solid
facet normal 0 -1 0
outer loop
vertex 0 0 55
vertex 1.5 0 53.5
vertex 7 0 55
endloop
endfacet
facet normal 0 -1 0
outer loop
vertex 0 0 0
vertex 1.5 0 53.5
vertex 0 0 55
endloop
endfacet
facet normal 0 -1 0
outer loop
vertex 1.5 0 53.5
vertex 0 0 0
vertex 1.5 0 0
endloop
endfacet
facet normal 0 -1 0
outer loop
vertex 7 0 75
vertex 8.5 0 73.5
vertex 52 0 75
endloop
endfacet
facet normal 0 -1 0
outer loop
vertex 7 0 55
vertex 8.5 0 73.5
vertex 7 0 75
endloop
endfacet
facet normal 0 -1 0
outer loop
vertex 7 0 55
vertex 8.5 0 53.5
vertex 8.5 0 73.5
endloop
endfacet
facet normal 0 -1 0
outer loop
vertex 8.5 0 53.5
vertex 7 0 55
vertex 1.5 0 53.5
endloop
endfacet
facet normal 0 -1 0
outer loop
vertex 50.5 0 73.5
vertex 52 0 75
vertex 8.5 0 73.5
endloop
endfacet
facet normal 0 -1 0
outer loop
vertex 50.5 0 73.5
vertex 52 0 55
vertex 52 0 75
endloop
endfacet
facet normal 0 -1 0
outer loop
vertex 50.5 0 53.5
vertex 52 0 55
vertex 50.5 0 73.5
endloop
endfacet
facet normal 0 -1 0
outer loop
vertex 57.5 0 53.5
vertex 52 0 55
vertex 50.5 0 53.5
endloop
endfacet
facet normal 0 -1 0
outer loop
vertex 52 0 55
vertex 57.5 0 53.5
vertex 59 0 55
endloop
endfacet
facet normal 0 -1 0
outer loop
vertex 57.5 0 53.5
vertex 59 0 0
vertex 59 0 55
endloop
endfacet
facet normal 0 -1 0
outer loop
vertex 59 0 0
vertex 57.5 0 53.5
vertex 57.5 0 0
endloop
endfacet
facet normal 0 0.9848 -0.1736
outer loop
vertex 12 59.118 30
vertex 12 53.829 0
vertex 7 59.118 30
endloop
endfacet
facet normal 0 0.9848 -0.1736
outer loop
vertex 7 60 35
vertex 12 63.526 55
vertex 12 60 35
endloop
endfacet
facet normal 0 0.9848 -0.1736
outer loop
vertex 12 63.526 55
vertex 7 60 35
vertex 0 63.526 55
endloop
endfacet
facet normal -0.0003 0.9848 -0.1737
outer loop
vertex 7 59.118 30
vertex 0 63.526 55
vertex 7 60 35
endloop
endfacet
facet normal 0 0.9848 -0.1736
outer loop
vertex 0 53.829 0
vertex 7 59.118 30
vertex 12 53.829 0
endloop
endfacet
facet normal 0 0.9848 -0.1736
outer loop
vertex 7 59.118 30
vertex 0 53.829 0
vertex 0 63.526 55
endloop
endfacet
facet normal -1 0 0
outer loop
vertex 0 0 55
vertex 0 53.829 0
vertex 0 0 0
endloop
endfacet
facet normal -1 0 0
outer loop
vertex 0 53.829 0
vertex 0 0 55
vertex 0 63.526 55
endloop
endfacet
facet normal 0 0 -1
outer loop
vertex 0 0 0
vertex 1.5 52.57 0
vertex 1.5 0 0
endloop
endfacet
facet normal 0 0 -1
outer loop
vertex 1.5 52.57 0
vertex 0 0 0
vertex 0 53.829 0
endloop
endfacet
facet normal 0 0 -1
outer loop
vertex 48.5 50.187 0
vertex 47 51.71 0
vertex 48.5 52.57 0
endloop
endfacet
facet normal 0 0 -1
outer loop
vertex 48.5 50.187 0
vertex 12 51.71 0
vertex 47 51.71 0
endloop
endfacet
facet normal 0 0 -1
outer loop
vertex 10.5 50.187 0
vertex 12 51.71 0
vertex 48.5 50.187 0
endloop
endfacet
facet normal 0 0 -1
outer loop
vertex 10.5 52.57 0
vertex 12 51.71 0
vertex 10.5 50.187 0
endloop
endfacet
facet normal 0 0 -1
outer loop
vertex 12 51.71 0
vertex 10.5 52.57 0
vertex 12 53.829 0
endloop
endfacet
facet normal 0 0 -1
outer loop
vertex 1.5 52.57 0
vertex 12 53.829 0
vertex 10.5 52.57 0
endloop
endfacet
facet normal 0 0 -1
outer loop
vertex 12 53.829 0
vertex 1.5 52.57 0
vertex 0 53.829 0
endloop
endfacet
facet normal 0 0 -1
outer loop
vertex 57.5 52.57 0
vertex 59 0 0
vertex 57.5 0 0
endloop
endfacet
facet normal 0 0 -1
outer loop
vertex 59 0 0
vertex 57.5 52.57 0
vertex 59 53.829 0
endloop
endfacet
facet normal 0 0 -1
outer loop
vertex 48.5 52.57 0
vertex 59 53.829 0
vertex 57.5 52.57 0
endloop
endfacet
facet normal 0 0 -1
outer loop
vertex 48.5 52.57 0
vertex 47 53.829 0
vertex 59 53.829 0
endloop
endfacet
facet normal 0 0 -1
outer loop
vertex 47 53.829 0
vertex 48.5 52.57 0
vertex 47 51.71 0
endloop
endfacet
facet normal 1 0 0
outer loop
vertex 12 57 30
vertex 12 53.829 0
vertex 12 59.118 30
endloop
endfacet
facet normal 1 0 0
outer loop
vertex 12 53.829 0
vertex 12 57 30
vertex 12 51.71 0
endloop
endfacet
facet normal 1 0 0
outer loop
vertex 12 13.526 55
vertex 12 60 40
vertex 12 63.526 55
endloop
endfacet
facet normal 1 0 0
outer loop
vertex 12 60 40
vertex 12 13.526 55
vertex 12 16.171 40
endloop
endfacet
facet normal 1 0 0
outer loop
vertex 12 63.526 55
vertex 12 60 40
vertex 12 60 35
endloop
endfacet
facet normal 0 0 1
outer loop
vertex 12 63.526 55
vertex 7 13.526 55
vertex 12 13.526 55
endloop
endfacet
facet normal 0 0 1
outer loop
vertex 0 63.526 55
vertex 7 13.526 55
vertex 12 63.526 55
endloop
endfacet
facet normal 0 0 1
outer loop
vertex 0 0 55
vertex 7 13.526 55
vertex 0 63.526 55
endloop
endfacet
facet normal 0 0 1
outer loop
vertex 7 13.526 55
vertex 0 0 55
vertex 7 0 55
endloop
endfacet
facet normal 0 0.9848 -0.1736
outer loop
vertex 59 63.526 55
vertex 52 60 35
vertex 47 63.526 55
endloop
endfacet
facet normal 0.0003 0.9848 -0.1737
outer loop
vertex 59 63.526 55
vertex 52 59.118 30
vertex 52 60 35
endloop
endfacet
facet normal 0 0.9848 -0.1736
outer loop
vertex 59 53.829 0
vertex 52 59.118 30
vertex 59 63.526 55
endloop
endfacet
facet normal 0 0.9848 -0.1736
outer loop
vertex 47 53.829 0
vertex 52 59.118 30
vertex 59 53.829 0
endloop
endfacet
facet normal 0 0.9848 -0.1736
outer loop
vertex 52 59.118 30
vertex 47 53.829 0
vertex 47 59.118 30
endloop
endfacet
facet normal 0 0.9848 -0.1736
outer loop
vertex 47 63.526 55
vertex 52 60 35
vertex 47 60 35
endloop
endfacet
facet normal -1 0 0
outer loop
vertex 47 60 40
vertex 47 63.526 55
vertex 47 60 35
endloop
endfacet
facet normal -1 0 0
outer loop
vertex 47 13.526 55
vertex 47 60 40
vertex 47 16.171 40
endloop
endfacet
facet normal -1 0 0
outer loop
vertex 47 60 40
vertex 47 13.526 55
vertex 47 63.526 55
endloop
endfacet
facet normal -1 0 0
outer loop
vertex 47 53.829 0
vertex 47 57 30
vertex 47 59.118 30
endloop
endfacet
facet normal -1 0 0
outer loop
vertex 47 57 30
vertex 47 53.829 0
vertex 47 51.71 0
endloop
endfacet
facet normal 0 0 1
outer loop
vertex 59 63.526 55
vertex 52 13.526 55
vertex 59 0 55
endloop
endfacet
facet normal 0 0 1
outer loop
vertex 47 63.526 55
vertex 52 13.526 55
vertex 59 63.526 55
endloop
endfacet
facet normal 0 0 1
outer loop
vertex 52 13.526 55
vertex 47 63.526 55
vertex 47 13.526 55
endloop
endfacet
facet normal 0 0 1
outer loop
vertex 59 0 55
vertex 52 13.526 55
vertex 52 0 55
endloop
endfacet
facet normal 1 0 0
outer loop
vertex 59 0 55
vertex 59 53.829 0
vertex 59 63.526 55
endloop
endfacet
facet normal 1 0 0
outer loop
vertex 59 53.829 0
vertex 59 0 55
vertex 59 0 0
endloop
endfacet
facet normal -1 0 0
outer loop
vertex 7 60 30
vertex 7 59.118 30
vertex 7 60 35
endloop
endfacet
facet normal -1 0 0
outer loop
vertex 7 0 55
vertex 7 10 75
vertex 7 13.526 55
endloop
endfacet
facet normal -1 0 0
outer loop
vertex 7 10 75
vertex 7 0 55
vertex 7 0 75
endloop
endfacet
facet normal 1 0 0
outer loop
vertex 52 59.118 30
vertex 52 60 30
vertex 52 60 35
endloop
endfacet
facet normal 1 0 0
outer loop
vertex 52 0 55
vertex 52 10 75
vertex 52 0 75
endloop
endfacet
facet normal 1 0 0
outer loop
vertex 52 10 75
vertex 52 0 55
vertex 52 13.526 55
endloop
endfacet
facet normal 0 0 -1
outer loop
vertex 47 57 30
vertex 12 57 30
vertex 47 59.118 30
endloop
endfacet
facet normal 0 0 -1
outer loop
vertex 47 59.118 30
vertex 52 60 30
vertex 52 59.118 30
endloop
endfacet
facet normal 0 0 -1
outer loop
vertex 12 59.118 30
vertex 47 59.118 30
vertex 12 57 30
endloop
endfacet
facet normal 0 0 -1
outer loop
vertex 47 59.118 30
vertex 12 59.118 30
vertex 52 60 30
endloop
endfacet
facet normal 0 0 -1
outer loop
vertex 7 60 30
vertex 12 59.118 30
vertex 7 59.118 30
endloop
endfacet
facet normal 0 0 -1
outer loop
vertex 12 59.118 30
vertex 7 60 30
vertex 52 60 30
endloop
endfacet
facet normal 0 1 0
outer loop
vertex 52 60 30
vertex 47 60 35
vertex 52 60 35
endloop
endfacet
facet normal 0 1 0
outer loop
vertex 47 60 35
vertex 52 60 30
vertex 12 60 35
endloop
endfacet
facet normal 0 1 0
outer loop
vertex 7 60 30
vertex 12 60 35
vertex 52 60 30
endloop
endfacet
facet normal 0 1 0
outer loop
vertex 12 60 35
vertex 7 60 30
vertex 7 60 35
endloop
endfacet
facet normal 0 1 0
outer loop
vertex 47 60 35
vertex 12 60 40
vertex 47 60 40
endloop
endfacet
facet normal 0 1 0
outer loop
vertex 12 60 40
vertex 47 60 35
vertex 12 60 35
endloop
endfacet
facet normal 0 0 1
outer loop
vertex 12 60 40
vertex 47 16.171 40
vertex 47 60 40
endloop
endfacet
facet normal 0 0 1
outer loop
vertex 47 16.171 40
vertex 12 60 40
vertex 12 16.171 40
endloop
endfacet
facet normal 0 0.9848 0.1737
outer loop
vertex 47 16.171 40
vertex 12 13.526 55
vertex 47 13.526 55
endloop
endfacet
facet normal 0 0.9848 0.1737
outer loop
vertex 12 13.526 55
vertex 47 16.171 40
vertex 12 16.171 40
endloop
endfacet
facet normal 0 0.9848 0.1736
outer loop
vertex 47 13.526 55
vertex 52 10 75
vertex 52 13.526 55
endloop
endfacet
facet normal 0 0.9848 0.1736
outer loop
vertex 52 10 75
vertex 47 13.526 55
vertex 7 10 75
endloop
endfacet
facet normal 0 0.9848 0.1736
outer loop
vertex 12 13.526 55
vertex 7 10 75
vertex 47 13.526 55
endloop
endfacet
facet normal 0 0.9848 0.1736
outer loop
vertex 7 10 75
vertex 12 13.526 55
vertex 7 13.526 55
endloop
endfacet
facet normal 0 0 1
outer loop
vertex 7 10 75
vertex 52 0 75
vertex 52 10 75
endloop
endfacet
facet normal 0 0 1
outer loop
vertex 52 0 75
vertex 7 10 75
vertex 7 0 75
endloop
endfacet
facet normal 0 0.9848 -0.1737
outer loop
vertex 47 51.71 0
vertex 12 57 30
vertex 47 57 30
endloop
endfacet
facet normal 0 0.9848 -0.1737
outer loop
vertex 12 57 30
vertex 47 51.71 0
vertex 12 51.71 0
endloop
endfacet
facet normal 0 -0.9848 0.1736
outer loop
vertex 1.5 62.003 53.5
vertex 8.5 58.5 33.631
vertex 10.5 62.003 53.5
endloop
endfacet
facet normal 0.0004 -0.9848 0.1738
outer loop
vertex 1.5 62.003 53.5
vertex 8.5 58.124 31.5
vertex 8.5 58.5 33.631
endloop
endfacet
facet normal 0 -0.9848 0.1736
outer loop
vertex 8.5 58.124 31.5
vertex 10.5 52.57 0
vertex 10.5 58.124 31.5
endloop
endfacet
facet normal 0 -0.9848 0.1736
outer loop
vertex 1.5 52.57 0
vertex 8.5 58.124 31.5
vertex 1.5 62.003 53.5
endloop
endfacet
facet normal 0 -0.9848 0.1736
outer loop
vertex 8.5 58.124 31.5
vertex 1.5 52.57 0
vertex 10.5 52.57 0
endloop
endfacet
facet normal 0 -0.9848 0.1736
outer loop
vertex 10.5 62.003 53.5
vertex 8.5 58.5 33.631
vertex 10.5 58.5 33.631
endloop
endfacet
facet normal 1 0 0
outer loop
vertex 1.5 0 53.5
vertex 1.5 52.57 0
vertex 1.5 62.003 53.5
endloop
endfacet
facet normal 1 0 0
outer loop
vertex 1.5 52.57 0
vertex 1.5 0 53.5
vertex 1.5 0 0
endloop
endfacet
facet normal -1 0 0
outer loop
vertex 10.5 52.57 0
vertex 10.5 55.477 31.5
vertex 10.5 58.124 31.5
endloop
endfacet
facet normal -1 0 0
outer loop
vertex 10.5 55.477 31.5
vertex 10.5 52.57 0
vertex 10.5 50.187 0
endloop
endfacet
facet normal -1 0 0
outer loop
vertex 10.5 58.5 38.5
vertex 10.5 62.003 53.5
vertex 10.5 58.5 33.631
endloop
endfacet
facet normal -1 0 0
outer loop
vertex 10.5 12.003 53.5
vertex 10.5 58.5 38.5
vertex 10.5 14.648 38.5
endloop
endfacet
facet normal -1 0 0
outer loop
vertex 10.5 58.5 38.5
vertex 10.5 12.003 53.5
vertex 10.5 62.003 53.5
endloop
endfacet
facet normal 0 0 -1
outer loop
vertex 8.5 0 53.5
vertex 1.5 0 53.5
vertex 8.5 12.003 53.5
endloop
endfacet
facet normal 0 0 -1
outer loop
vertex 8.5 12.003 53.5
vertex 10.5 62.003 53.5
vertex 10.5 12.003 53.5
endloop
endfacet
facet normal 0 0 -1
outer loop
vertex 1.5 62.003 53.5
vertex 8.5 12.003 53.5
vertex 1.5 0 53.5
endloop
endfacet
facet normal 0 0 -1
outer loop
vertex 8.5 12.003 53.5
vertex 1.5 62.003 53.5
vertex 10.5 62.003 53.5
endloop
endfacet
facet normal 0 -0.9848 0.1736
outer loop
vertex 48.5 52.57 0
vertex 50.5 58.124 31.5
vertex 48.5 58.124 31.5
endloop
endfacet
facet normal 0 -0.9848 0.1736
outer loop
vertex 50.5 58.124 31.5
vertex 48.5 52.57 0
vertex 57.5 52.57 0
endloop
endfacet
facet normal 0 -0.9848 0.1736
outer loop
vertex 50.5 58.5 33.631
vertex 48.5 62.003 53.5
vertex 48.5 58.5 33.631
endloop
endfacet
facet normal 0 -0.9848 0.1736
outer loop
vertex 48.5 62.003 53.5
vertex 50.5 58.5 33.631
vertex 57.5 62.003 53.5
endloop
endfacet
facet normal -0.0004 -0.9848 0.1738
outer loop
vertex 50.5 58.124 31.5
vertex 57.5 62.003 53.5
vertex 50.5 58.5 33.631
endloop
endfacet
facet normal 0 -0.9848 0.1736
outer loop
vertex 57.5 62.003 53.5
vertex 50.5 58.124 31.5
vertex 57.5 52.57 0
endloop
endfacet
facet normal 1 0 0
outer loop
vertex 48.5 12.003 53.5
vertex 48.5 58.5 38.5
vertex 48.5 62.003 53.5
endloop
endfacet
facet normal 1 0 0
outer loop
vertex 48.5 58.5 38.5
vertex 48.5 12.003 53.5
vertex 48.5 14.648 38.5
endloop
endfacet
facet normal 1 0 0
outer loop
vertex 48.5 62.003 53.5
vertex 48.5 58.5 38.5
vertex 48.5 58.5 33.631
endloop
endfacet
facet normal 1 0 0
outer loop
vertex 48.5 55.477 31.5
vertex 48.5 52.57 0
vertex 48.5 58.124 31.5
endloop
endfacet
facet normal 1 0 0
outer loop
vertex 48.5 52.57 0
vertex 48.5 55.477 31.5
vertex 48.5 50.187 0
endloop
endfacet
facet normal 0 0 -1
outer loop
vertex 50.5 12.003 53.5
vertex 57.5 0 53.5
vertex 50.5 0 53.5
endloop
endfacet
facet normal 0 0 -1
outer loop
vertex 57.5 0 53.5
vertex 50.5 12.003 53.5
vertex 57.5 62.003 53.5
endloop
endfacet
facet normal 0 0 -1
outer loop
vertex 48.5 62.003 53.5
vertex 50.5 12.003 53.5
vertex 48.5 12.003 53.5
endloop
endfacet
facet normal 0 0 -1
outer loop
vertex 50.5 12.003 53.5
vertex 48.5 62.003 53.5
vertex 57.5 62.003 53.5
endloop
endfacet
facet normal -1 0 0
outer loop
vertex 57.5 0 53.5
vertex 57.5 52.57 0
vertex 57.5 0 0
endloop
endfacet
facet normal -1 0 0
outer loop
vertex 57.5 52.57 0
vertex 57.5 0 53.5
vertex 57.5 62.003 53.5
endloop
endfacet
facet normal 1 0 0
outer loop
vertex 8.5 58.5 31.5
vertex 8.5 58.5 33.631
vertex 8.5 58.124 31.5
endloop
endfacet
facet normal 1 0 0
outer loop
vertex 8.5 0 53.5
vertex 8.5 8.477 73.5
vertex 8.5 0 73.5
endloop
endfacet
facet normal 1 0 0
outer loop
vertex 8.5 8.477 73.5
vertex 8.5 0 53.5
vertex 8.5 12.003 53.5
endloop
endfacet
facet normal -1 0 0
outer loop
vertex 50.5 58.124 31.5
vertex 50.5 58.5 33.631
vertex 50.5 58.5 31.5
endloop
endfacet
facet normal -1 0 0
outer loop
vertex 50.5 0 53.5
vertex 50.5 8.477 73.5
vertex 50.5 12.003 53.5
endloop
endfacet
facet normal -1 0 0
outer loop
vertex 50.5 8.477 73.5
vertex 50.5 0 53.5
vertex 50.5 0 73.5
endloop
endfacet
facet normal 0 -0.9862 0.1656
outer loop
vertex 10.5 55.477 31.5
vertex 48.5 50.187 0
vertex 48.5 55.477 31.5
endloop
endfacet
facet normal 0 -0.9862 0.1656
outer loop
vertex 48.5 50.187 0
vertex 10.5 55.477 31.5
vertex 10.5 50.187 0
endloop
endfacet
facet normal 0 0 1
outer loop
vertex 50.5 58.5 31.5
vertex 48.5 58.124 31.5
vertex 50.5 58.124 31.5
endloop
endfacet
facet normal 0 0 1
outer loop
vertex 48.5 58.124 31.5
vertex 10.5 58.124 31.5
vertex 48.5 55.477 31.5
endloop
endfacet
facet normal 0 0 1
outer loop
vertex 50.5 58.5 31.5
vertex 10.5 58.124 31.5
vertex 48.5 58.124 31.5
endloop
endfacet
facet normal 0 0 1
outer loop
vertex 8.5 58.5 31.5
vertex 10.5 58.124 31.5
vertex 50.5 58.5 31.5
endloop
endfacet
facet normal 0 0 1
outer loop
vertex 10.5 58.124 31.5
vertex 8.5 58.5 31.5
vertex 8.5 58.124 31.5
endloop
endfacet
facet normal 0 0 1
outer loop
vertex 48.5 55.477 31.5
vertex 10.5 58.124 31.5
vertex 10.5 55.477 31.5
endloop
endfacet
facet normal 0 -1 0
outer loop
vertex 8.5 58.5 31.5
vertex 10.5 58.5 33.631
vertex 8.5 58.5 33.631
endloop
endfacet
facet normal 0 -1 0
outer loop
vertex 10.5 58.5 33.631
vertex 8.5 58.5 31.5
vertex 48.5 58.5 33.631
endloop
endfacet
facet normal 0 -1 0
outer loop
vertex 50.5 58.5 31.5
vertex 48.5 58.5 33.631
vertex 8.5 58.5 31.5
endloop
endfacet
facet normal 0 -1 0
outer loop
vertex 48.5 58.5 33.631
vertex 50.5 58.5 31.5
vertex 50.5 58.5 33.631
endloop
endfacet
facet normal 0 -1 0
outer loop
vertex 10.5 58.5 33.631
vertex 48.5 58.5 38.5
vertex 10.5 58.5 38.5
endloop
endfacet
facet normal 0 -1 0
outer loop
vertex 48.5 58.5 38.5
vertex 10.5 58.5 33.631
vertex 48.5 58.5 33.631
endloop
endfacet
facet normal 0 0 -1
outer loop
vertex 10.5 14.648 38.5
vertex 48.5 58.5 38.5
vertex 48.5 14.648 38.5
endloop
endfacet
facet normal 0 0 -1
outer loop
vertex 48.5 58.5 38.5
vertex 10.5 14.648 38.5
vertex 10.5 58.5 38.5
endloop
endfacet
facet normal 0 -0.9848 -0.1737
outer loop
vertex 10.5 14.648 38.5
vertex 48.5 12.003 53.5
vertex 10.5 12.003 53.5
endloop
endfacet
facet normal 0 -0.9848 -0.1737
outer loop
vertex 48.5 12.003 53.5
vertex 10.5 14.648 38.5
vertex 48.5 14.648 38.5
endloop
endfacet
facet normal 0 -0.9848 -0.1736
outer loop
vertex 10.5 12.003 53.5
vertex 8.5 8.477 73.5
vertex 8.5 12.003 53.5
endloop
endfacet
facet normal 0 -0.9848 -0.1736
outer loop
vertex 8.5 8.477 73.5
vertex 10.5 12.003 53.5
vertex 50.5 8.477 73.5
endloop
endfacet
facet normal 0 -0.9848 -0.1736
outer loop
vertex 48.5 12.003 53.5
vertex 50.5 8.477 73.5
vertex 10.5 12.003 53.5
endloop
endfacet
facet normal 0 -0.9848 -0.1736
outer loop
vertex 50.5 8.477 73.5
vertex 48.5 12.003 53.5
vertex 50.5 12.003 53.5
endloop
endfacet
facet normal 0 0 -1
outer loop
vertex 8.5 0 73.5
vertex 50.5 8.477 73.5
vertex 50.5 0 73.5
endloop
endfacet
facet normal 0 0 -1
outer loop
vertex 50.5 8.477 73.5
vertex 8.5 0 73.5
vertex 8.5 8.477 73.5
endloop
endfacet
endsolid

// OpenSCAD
// file: solid_chair.scad
width=45;
height=75;
depth=60;
back_top=10;
top_angle=80;
seat_elevation=40;
seat_height=10;
seat_overhang=3;
bottom_angle=80;
wall_thickness=1.5;
armrest_bool=true;
armrest_height=55;
armrest_width=12;
armrest_overlap=5;

module solid_chair(
    w=width,
    h=height,
    d=depth,
    bt=back_top,
    ta=top_angle,
    se=seat_elevation,
    sh=seat_height,
    so=seat_overhang,
    ba=bottom_angle,
    wt=wall_thickness,
    ab=armrest_bool,
    ah=armrest_height,
    aw=armrest_width,
    ao=armrest_overlap
){
    module armrest() {
        linear_extrude(aw)
            polygon([
                [0,0],
                [d-tan(90-ba)*(se-sh/2),0],
                [d+tan(90-ba)*(ah-(se-sh/2)),ah],
                [0,ah]]);
    }

    module body() {
        linear_extrude(w)
                polygon([
                    [0,0],
                    [d-so-tan(90-ba)*(se-sh),0],
                    [d-so,se-sh],
                    [d,se-sh],
                    [d,se],
                    [bt+tan(90-ta)*(h-se),se],
                    [bt,h],
                    [0,h]
                ]);
    }

    translation=ab?aw-ao:0;

    translate([translation, 0,0])
    rotate([90,0,90])
        union(){
            body();
            if (ab) {
                translate([0,0,ao-aw])
                    armrest();
                translate([0,0,w-ao])
                    armrest();
            }
        }
}



solid_chair();
// main file
width=45;
height=75;
depth=60;
back_top=10;
top_angle=80;
seat_elevation=40;
seat_height=10;
seat_overhang=3;
bottom_angle=80;
wall_thickness=1.5;
armrest_bool=true;
armrest_height=55;
armrest_width=12;
armrest_overlap=5;

use <./solid_chair.scad>

module hollow_chair(
    w=width,
    h=height,
    d=depth,
    bt=back_top,
    ta=top_angle,
    se=seat_elevation,
    sh=seat_height,
    so=seat_overhang,
    ba=bottom_angle,
    wt=wall_thickness,
    ab=armrest_bool,
    ah=armrest_height,
    aw=armrest_width,
    ao=armrest_overlap
){
module armrest_punch() {
    translate([-(wt/cos(90-ba)),-wt,0]) 
        linear_extrude(aw-2*wt)
            polygon([
                [0,0],
                [d-tan(90-ba)*(se-sh/2),0],
                [d+tan(90-ba)*(ah-(se-sh/2)),ah],
                [0,ah]]);
}

module body_punch() {
    translate([0,0,wt])
        linear_extrude(w-(2*wt))
            polygon([
                [-wt,-wt],[d-so-tan(90-ba)*(se-sh)-(wt/cos(90-ba)),-wt],
                [d-so-tan(90-ba)*(se-sh)-(wt/cos(90-ba)),0],
                [d-so-(wt/cos(90-ba)),se-sh+wt],
                [d-wt,se-sh+wt],
                [d-wt,se-wt],
                [bt+tan(90-ta)*(h-se)-(wt/cos(90-ta)),se-wt],
                [bt-(wt/cos(90-ta)),h-wt],
                [-wt,h-wt]]);
}

translation=ab?aw-ao:0;

difference(){
    solid_chair(w,h,d,bt,ta,se,sh,so,ba,wt,ab,ah,aw,ao);
    translate([translation, 0,0])
        rotate([90,0,90])
            union(){
                body_punch();
                if (ab) {
                    translate([0,0,wt+ao-aw])
                        armrest_punch();
                    translate([0,0,w-ao+wt])
                        armrest_punch();
                }
            }
      }
}



hollow_chair();
